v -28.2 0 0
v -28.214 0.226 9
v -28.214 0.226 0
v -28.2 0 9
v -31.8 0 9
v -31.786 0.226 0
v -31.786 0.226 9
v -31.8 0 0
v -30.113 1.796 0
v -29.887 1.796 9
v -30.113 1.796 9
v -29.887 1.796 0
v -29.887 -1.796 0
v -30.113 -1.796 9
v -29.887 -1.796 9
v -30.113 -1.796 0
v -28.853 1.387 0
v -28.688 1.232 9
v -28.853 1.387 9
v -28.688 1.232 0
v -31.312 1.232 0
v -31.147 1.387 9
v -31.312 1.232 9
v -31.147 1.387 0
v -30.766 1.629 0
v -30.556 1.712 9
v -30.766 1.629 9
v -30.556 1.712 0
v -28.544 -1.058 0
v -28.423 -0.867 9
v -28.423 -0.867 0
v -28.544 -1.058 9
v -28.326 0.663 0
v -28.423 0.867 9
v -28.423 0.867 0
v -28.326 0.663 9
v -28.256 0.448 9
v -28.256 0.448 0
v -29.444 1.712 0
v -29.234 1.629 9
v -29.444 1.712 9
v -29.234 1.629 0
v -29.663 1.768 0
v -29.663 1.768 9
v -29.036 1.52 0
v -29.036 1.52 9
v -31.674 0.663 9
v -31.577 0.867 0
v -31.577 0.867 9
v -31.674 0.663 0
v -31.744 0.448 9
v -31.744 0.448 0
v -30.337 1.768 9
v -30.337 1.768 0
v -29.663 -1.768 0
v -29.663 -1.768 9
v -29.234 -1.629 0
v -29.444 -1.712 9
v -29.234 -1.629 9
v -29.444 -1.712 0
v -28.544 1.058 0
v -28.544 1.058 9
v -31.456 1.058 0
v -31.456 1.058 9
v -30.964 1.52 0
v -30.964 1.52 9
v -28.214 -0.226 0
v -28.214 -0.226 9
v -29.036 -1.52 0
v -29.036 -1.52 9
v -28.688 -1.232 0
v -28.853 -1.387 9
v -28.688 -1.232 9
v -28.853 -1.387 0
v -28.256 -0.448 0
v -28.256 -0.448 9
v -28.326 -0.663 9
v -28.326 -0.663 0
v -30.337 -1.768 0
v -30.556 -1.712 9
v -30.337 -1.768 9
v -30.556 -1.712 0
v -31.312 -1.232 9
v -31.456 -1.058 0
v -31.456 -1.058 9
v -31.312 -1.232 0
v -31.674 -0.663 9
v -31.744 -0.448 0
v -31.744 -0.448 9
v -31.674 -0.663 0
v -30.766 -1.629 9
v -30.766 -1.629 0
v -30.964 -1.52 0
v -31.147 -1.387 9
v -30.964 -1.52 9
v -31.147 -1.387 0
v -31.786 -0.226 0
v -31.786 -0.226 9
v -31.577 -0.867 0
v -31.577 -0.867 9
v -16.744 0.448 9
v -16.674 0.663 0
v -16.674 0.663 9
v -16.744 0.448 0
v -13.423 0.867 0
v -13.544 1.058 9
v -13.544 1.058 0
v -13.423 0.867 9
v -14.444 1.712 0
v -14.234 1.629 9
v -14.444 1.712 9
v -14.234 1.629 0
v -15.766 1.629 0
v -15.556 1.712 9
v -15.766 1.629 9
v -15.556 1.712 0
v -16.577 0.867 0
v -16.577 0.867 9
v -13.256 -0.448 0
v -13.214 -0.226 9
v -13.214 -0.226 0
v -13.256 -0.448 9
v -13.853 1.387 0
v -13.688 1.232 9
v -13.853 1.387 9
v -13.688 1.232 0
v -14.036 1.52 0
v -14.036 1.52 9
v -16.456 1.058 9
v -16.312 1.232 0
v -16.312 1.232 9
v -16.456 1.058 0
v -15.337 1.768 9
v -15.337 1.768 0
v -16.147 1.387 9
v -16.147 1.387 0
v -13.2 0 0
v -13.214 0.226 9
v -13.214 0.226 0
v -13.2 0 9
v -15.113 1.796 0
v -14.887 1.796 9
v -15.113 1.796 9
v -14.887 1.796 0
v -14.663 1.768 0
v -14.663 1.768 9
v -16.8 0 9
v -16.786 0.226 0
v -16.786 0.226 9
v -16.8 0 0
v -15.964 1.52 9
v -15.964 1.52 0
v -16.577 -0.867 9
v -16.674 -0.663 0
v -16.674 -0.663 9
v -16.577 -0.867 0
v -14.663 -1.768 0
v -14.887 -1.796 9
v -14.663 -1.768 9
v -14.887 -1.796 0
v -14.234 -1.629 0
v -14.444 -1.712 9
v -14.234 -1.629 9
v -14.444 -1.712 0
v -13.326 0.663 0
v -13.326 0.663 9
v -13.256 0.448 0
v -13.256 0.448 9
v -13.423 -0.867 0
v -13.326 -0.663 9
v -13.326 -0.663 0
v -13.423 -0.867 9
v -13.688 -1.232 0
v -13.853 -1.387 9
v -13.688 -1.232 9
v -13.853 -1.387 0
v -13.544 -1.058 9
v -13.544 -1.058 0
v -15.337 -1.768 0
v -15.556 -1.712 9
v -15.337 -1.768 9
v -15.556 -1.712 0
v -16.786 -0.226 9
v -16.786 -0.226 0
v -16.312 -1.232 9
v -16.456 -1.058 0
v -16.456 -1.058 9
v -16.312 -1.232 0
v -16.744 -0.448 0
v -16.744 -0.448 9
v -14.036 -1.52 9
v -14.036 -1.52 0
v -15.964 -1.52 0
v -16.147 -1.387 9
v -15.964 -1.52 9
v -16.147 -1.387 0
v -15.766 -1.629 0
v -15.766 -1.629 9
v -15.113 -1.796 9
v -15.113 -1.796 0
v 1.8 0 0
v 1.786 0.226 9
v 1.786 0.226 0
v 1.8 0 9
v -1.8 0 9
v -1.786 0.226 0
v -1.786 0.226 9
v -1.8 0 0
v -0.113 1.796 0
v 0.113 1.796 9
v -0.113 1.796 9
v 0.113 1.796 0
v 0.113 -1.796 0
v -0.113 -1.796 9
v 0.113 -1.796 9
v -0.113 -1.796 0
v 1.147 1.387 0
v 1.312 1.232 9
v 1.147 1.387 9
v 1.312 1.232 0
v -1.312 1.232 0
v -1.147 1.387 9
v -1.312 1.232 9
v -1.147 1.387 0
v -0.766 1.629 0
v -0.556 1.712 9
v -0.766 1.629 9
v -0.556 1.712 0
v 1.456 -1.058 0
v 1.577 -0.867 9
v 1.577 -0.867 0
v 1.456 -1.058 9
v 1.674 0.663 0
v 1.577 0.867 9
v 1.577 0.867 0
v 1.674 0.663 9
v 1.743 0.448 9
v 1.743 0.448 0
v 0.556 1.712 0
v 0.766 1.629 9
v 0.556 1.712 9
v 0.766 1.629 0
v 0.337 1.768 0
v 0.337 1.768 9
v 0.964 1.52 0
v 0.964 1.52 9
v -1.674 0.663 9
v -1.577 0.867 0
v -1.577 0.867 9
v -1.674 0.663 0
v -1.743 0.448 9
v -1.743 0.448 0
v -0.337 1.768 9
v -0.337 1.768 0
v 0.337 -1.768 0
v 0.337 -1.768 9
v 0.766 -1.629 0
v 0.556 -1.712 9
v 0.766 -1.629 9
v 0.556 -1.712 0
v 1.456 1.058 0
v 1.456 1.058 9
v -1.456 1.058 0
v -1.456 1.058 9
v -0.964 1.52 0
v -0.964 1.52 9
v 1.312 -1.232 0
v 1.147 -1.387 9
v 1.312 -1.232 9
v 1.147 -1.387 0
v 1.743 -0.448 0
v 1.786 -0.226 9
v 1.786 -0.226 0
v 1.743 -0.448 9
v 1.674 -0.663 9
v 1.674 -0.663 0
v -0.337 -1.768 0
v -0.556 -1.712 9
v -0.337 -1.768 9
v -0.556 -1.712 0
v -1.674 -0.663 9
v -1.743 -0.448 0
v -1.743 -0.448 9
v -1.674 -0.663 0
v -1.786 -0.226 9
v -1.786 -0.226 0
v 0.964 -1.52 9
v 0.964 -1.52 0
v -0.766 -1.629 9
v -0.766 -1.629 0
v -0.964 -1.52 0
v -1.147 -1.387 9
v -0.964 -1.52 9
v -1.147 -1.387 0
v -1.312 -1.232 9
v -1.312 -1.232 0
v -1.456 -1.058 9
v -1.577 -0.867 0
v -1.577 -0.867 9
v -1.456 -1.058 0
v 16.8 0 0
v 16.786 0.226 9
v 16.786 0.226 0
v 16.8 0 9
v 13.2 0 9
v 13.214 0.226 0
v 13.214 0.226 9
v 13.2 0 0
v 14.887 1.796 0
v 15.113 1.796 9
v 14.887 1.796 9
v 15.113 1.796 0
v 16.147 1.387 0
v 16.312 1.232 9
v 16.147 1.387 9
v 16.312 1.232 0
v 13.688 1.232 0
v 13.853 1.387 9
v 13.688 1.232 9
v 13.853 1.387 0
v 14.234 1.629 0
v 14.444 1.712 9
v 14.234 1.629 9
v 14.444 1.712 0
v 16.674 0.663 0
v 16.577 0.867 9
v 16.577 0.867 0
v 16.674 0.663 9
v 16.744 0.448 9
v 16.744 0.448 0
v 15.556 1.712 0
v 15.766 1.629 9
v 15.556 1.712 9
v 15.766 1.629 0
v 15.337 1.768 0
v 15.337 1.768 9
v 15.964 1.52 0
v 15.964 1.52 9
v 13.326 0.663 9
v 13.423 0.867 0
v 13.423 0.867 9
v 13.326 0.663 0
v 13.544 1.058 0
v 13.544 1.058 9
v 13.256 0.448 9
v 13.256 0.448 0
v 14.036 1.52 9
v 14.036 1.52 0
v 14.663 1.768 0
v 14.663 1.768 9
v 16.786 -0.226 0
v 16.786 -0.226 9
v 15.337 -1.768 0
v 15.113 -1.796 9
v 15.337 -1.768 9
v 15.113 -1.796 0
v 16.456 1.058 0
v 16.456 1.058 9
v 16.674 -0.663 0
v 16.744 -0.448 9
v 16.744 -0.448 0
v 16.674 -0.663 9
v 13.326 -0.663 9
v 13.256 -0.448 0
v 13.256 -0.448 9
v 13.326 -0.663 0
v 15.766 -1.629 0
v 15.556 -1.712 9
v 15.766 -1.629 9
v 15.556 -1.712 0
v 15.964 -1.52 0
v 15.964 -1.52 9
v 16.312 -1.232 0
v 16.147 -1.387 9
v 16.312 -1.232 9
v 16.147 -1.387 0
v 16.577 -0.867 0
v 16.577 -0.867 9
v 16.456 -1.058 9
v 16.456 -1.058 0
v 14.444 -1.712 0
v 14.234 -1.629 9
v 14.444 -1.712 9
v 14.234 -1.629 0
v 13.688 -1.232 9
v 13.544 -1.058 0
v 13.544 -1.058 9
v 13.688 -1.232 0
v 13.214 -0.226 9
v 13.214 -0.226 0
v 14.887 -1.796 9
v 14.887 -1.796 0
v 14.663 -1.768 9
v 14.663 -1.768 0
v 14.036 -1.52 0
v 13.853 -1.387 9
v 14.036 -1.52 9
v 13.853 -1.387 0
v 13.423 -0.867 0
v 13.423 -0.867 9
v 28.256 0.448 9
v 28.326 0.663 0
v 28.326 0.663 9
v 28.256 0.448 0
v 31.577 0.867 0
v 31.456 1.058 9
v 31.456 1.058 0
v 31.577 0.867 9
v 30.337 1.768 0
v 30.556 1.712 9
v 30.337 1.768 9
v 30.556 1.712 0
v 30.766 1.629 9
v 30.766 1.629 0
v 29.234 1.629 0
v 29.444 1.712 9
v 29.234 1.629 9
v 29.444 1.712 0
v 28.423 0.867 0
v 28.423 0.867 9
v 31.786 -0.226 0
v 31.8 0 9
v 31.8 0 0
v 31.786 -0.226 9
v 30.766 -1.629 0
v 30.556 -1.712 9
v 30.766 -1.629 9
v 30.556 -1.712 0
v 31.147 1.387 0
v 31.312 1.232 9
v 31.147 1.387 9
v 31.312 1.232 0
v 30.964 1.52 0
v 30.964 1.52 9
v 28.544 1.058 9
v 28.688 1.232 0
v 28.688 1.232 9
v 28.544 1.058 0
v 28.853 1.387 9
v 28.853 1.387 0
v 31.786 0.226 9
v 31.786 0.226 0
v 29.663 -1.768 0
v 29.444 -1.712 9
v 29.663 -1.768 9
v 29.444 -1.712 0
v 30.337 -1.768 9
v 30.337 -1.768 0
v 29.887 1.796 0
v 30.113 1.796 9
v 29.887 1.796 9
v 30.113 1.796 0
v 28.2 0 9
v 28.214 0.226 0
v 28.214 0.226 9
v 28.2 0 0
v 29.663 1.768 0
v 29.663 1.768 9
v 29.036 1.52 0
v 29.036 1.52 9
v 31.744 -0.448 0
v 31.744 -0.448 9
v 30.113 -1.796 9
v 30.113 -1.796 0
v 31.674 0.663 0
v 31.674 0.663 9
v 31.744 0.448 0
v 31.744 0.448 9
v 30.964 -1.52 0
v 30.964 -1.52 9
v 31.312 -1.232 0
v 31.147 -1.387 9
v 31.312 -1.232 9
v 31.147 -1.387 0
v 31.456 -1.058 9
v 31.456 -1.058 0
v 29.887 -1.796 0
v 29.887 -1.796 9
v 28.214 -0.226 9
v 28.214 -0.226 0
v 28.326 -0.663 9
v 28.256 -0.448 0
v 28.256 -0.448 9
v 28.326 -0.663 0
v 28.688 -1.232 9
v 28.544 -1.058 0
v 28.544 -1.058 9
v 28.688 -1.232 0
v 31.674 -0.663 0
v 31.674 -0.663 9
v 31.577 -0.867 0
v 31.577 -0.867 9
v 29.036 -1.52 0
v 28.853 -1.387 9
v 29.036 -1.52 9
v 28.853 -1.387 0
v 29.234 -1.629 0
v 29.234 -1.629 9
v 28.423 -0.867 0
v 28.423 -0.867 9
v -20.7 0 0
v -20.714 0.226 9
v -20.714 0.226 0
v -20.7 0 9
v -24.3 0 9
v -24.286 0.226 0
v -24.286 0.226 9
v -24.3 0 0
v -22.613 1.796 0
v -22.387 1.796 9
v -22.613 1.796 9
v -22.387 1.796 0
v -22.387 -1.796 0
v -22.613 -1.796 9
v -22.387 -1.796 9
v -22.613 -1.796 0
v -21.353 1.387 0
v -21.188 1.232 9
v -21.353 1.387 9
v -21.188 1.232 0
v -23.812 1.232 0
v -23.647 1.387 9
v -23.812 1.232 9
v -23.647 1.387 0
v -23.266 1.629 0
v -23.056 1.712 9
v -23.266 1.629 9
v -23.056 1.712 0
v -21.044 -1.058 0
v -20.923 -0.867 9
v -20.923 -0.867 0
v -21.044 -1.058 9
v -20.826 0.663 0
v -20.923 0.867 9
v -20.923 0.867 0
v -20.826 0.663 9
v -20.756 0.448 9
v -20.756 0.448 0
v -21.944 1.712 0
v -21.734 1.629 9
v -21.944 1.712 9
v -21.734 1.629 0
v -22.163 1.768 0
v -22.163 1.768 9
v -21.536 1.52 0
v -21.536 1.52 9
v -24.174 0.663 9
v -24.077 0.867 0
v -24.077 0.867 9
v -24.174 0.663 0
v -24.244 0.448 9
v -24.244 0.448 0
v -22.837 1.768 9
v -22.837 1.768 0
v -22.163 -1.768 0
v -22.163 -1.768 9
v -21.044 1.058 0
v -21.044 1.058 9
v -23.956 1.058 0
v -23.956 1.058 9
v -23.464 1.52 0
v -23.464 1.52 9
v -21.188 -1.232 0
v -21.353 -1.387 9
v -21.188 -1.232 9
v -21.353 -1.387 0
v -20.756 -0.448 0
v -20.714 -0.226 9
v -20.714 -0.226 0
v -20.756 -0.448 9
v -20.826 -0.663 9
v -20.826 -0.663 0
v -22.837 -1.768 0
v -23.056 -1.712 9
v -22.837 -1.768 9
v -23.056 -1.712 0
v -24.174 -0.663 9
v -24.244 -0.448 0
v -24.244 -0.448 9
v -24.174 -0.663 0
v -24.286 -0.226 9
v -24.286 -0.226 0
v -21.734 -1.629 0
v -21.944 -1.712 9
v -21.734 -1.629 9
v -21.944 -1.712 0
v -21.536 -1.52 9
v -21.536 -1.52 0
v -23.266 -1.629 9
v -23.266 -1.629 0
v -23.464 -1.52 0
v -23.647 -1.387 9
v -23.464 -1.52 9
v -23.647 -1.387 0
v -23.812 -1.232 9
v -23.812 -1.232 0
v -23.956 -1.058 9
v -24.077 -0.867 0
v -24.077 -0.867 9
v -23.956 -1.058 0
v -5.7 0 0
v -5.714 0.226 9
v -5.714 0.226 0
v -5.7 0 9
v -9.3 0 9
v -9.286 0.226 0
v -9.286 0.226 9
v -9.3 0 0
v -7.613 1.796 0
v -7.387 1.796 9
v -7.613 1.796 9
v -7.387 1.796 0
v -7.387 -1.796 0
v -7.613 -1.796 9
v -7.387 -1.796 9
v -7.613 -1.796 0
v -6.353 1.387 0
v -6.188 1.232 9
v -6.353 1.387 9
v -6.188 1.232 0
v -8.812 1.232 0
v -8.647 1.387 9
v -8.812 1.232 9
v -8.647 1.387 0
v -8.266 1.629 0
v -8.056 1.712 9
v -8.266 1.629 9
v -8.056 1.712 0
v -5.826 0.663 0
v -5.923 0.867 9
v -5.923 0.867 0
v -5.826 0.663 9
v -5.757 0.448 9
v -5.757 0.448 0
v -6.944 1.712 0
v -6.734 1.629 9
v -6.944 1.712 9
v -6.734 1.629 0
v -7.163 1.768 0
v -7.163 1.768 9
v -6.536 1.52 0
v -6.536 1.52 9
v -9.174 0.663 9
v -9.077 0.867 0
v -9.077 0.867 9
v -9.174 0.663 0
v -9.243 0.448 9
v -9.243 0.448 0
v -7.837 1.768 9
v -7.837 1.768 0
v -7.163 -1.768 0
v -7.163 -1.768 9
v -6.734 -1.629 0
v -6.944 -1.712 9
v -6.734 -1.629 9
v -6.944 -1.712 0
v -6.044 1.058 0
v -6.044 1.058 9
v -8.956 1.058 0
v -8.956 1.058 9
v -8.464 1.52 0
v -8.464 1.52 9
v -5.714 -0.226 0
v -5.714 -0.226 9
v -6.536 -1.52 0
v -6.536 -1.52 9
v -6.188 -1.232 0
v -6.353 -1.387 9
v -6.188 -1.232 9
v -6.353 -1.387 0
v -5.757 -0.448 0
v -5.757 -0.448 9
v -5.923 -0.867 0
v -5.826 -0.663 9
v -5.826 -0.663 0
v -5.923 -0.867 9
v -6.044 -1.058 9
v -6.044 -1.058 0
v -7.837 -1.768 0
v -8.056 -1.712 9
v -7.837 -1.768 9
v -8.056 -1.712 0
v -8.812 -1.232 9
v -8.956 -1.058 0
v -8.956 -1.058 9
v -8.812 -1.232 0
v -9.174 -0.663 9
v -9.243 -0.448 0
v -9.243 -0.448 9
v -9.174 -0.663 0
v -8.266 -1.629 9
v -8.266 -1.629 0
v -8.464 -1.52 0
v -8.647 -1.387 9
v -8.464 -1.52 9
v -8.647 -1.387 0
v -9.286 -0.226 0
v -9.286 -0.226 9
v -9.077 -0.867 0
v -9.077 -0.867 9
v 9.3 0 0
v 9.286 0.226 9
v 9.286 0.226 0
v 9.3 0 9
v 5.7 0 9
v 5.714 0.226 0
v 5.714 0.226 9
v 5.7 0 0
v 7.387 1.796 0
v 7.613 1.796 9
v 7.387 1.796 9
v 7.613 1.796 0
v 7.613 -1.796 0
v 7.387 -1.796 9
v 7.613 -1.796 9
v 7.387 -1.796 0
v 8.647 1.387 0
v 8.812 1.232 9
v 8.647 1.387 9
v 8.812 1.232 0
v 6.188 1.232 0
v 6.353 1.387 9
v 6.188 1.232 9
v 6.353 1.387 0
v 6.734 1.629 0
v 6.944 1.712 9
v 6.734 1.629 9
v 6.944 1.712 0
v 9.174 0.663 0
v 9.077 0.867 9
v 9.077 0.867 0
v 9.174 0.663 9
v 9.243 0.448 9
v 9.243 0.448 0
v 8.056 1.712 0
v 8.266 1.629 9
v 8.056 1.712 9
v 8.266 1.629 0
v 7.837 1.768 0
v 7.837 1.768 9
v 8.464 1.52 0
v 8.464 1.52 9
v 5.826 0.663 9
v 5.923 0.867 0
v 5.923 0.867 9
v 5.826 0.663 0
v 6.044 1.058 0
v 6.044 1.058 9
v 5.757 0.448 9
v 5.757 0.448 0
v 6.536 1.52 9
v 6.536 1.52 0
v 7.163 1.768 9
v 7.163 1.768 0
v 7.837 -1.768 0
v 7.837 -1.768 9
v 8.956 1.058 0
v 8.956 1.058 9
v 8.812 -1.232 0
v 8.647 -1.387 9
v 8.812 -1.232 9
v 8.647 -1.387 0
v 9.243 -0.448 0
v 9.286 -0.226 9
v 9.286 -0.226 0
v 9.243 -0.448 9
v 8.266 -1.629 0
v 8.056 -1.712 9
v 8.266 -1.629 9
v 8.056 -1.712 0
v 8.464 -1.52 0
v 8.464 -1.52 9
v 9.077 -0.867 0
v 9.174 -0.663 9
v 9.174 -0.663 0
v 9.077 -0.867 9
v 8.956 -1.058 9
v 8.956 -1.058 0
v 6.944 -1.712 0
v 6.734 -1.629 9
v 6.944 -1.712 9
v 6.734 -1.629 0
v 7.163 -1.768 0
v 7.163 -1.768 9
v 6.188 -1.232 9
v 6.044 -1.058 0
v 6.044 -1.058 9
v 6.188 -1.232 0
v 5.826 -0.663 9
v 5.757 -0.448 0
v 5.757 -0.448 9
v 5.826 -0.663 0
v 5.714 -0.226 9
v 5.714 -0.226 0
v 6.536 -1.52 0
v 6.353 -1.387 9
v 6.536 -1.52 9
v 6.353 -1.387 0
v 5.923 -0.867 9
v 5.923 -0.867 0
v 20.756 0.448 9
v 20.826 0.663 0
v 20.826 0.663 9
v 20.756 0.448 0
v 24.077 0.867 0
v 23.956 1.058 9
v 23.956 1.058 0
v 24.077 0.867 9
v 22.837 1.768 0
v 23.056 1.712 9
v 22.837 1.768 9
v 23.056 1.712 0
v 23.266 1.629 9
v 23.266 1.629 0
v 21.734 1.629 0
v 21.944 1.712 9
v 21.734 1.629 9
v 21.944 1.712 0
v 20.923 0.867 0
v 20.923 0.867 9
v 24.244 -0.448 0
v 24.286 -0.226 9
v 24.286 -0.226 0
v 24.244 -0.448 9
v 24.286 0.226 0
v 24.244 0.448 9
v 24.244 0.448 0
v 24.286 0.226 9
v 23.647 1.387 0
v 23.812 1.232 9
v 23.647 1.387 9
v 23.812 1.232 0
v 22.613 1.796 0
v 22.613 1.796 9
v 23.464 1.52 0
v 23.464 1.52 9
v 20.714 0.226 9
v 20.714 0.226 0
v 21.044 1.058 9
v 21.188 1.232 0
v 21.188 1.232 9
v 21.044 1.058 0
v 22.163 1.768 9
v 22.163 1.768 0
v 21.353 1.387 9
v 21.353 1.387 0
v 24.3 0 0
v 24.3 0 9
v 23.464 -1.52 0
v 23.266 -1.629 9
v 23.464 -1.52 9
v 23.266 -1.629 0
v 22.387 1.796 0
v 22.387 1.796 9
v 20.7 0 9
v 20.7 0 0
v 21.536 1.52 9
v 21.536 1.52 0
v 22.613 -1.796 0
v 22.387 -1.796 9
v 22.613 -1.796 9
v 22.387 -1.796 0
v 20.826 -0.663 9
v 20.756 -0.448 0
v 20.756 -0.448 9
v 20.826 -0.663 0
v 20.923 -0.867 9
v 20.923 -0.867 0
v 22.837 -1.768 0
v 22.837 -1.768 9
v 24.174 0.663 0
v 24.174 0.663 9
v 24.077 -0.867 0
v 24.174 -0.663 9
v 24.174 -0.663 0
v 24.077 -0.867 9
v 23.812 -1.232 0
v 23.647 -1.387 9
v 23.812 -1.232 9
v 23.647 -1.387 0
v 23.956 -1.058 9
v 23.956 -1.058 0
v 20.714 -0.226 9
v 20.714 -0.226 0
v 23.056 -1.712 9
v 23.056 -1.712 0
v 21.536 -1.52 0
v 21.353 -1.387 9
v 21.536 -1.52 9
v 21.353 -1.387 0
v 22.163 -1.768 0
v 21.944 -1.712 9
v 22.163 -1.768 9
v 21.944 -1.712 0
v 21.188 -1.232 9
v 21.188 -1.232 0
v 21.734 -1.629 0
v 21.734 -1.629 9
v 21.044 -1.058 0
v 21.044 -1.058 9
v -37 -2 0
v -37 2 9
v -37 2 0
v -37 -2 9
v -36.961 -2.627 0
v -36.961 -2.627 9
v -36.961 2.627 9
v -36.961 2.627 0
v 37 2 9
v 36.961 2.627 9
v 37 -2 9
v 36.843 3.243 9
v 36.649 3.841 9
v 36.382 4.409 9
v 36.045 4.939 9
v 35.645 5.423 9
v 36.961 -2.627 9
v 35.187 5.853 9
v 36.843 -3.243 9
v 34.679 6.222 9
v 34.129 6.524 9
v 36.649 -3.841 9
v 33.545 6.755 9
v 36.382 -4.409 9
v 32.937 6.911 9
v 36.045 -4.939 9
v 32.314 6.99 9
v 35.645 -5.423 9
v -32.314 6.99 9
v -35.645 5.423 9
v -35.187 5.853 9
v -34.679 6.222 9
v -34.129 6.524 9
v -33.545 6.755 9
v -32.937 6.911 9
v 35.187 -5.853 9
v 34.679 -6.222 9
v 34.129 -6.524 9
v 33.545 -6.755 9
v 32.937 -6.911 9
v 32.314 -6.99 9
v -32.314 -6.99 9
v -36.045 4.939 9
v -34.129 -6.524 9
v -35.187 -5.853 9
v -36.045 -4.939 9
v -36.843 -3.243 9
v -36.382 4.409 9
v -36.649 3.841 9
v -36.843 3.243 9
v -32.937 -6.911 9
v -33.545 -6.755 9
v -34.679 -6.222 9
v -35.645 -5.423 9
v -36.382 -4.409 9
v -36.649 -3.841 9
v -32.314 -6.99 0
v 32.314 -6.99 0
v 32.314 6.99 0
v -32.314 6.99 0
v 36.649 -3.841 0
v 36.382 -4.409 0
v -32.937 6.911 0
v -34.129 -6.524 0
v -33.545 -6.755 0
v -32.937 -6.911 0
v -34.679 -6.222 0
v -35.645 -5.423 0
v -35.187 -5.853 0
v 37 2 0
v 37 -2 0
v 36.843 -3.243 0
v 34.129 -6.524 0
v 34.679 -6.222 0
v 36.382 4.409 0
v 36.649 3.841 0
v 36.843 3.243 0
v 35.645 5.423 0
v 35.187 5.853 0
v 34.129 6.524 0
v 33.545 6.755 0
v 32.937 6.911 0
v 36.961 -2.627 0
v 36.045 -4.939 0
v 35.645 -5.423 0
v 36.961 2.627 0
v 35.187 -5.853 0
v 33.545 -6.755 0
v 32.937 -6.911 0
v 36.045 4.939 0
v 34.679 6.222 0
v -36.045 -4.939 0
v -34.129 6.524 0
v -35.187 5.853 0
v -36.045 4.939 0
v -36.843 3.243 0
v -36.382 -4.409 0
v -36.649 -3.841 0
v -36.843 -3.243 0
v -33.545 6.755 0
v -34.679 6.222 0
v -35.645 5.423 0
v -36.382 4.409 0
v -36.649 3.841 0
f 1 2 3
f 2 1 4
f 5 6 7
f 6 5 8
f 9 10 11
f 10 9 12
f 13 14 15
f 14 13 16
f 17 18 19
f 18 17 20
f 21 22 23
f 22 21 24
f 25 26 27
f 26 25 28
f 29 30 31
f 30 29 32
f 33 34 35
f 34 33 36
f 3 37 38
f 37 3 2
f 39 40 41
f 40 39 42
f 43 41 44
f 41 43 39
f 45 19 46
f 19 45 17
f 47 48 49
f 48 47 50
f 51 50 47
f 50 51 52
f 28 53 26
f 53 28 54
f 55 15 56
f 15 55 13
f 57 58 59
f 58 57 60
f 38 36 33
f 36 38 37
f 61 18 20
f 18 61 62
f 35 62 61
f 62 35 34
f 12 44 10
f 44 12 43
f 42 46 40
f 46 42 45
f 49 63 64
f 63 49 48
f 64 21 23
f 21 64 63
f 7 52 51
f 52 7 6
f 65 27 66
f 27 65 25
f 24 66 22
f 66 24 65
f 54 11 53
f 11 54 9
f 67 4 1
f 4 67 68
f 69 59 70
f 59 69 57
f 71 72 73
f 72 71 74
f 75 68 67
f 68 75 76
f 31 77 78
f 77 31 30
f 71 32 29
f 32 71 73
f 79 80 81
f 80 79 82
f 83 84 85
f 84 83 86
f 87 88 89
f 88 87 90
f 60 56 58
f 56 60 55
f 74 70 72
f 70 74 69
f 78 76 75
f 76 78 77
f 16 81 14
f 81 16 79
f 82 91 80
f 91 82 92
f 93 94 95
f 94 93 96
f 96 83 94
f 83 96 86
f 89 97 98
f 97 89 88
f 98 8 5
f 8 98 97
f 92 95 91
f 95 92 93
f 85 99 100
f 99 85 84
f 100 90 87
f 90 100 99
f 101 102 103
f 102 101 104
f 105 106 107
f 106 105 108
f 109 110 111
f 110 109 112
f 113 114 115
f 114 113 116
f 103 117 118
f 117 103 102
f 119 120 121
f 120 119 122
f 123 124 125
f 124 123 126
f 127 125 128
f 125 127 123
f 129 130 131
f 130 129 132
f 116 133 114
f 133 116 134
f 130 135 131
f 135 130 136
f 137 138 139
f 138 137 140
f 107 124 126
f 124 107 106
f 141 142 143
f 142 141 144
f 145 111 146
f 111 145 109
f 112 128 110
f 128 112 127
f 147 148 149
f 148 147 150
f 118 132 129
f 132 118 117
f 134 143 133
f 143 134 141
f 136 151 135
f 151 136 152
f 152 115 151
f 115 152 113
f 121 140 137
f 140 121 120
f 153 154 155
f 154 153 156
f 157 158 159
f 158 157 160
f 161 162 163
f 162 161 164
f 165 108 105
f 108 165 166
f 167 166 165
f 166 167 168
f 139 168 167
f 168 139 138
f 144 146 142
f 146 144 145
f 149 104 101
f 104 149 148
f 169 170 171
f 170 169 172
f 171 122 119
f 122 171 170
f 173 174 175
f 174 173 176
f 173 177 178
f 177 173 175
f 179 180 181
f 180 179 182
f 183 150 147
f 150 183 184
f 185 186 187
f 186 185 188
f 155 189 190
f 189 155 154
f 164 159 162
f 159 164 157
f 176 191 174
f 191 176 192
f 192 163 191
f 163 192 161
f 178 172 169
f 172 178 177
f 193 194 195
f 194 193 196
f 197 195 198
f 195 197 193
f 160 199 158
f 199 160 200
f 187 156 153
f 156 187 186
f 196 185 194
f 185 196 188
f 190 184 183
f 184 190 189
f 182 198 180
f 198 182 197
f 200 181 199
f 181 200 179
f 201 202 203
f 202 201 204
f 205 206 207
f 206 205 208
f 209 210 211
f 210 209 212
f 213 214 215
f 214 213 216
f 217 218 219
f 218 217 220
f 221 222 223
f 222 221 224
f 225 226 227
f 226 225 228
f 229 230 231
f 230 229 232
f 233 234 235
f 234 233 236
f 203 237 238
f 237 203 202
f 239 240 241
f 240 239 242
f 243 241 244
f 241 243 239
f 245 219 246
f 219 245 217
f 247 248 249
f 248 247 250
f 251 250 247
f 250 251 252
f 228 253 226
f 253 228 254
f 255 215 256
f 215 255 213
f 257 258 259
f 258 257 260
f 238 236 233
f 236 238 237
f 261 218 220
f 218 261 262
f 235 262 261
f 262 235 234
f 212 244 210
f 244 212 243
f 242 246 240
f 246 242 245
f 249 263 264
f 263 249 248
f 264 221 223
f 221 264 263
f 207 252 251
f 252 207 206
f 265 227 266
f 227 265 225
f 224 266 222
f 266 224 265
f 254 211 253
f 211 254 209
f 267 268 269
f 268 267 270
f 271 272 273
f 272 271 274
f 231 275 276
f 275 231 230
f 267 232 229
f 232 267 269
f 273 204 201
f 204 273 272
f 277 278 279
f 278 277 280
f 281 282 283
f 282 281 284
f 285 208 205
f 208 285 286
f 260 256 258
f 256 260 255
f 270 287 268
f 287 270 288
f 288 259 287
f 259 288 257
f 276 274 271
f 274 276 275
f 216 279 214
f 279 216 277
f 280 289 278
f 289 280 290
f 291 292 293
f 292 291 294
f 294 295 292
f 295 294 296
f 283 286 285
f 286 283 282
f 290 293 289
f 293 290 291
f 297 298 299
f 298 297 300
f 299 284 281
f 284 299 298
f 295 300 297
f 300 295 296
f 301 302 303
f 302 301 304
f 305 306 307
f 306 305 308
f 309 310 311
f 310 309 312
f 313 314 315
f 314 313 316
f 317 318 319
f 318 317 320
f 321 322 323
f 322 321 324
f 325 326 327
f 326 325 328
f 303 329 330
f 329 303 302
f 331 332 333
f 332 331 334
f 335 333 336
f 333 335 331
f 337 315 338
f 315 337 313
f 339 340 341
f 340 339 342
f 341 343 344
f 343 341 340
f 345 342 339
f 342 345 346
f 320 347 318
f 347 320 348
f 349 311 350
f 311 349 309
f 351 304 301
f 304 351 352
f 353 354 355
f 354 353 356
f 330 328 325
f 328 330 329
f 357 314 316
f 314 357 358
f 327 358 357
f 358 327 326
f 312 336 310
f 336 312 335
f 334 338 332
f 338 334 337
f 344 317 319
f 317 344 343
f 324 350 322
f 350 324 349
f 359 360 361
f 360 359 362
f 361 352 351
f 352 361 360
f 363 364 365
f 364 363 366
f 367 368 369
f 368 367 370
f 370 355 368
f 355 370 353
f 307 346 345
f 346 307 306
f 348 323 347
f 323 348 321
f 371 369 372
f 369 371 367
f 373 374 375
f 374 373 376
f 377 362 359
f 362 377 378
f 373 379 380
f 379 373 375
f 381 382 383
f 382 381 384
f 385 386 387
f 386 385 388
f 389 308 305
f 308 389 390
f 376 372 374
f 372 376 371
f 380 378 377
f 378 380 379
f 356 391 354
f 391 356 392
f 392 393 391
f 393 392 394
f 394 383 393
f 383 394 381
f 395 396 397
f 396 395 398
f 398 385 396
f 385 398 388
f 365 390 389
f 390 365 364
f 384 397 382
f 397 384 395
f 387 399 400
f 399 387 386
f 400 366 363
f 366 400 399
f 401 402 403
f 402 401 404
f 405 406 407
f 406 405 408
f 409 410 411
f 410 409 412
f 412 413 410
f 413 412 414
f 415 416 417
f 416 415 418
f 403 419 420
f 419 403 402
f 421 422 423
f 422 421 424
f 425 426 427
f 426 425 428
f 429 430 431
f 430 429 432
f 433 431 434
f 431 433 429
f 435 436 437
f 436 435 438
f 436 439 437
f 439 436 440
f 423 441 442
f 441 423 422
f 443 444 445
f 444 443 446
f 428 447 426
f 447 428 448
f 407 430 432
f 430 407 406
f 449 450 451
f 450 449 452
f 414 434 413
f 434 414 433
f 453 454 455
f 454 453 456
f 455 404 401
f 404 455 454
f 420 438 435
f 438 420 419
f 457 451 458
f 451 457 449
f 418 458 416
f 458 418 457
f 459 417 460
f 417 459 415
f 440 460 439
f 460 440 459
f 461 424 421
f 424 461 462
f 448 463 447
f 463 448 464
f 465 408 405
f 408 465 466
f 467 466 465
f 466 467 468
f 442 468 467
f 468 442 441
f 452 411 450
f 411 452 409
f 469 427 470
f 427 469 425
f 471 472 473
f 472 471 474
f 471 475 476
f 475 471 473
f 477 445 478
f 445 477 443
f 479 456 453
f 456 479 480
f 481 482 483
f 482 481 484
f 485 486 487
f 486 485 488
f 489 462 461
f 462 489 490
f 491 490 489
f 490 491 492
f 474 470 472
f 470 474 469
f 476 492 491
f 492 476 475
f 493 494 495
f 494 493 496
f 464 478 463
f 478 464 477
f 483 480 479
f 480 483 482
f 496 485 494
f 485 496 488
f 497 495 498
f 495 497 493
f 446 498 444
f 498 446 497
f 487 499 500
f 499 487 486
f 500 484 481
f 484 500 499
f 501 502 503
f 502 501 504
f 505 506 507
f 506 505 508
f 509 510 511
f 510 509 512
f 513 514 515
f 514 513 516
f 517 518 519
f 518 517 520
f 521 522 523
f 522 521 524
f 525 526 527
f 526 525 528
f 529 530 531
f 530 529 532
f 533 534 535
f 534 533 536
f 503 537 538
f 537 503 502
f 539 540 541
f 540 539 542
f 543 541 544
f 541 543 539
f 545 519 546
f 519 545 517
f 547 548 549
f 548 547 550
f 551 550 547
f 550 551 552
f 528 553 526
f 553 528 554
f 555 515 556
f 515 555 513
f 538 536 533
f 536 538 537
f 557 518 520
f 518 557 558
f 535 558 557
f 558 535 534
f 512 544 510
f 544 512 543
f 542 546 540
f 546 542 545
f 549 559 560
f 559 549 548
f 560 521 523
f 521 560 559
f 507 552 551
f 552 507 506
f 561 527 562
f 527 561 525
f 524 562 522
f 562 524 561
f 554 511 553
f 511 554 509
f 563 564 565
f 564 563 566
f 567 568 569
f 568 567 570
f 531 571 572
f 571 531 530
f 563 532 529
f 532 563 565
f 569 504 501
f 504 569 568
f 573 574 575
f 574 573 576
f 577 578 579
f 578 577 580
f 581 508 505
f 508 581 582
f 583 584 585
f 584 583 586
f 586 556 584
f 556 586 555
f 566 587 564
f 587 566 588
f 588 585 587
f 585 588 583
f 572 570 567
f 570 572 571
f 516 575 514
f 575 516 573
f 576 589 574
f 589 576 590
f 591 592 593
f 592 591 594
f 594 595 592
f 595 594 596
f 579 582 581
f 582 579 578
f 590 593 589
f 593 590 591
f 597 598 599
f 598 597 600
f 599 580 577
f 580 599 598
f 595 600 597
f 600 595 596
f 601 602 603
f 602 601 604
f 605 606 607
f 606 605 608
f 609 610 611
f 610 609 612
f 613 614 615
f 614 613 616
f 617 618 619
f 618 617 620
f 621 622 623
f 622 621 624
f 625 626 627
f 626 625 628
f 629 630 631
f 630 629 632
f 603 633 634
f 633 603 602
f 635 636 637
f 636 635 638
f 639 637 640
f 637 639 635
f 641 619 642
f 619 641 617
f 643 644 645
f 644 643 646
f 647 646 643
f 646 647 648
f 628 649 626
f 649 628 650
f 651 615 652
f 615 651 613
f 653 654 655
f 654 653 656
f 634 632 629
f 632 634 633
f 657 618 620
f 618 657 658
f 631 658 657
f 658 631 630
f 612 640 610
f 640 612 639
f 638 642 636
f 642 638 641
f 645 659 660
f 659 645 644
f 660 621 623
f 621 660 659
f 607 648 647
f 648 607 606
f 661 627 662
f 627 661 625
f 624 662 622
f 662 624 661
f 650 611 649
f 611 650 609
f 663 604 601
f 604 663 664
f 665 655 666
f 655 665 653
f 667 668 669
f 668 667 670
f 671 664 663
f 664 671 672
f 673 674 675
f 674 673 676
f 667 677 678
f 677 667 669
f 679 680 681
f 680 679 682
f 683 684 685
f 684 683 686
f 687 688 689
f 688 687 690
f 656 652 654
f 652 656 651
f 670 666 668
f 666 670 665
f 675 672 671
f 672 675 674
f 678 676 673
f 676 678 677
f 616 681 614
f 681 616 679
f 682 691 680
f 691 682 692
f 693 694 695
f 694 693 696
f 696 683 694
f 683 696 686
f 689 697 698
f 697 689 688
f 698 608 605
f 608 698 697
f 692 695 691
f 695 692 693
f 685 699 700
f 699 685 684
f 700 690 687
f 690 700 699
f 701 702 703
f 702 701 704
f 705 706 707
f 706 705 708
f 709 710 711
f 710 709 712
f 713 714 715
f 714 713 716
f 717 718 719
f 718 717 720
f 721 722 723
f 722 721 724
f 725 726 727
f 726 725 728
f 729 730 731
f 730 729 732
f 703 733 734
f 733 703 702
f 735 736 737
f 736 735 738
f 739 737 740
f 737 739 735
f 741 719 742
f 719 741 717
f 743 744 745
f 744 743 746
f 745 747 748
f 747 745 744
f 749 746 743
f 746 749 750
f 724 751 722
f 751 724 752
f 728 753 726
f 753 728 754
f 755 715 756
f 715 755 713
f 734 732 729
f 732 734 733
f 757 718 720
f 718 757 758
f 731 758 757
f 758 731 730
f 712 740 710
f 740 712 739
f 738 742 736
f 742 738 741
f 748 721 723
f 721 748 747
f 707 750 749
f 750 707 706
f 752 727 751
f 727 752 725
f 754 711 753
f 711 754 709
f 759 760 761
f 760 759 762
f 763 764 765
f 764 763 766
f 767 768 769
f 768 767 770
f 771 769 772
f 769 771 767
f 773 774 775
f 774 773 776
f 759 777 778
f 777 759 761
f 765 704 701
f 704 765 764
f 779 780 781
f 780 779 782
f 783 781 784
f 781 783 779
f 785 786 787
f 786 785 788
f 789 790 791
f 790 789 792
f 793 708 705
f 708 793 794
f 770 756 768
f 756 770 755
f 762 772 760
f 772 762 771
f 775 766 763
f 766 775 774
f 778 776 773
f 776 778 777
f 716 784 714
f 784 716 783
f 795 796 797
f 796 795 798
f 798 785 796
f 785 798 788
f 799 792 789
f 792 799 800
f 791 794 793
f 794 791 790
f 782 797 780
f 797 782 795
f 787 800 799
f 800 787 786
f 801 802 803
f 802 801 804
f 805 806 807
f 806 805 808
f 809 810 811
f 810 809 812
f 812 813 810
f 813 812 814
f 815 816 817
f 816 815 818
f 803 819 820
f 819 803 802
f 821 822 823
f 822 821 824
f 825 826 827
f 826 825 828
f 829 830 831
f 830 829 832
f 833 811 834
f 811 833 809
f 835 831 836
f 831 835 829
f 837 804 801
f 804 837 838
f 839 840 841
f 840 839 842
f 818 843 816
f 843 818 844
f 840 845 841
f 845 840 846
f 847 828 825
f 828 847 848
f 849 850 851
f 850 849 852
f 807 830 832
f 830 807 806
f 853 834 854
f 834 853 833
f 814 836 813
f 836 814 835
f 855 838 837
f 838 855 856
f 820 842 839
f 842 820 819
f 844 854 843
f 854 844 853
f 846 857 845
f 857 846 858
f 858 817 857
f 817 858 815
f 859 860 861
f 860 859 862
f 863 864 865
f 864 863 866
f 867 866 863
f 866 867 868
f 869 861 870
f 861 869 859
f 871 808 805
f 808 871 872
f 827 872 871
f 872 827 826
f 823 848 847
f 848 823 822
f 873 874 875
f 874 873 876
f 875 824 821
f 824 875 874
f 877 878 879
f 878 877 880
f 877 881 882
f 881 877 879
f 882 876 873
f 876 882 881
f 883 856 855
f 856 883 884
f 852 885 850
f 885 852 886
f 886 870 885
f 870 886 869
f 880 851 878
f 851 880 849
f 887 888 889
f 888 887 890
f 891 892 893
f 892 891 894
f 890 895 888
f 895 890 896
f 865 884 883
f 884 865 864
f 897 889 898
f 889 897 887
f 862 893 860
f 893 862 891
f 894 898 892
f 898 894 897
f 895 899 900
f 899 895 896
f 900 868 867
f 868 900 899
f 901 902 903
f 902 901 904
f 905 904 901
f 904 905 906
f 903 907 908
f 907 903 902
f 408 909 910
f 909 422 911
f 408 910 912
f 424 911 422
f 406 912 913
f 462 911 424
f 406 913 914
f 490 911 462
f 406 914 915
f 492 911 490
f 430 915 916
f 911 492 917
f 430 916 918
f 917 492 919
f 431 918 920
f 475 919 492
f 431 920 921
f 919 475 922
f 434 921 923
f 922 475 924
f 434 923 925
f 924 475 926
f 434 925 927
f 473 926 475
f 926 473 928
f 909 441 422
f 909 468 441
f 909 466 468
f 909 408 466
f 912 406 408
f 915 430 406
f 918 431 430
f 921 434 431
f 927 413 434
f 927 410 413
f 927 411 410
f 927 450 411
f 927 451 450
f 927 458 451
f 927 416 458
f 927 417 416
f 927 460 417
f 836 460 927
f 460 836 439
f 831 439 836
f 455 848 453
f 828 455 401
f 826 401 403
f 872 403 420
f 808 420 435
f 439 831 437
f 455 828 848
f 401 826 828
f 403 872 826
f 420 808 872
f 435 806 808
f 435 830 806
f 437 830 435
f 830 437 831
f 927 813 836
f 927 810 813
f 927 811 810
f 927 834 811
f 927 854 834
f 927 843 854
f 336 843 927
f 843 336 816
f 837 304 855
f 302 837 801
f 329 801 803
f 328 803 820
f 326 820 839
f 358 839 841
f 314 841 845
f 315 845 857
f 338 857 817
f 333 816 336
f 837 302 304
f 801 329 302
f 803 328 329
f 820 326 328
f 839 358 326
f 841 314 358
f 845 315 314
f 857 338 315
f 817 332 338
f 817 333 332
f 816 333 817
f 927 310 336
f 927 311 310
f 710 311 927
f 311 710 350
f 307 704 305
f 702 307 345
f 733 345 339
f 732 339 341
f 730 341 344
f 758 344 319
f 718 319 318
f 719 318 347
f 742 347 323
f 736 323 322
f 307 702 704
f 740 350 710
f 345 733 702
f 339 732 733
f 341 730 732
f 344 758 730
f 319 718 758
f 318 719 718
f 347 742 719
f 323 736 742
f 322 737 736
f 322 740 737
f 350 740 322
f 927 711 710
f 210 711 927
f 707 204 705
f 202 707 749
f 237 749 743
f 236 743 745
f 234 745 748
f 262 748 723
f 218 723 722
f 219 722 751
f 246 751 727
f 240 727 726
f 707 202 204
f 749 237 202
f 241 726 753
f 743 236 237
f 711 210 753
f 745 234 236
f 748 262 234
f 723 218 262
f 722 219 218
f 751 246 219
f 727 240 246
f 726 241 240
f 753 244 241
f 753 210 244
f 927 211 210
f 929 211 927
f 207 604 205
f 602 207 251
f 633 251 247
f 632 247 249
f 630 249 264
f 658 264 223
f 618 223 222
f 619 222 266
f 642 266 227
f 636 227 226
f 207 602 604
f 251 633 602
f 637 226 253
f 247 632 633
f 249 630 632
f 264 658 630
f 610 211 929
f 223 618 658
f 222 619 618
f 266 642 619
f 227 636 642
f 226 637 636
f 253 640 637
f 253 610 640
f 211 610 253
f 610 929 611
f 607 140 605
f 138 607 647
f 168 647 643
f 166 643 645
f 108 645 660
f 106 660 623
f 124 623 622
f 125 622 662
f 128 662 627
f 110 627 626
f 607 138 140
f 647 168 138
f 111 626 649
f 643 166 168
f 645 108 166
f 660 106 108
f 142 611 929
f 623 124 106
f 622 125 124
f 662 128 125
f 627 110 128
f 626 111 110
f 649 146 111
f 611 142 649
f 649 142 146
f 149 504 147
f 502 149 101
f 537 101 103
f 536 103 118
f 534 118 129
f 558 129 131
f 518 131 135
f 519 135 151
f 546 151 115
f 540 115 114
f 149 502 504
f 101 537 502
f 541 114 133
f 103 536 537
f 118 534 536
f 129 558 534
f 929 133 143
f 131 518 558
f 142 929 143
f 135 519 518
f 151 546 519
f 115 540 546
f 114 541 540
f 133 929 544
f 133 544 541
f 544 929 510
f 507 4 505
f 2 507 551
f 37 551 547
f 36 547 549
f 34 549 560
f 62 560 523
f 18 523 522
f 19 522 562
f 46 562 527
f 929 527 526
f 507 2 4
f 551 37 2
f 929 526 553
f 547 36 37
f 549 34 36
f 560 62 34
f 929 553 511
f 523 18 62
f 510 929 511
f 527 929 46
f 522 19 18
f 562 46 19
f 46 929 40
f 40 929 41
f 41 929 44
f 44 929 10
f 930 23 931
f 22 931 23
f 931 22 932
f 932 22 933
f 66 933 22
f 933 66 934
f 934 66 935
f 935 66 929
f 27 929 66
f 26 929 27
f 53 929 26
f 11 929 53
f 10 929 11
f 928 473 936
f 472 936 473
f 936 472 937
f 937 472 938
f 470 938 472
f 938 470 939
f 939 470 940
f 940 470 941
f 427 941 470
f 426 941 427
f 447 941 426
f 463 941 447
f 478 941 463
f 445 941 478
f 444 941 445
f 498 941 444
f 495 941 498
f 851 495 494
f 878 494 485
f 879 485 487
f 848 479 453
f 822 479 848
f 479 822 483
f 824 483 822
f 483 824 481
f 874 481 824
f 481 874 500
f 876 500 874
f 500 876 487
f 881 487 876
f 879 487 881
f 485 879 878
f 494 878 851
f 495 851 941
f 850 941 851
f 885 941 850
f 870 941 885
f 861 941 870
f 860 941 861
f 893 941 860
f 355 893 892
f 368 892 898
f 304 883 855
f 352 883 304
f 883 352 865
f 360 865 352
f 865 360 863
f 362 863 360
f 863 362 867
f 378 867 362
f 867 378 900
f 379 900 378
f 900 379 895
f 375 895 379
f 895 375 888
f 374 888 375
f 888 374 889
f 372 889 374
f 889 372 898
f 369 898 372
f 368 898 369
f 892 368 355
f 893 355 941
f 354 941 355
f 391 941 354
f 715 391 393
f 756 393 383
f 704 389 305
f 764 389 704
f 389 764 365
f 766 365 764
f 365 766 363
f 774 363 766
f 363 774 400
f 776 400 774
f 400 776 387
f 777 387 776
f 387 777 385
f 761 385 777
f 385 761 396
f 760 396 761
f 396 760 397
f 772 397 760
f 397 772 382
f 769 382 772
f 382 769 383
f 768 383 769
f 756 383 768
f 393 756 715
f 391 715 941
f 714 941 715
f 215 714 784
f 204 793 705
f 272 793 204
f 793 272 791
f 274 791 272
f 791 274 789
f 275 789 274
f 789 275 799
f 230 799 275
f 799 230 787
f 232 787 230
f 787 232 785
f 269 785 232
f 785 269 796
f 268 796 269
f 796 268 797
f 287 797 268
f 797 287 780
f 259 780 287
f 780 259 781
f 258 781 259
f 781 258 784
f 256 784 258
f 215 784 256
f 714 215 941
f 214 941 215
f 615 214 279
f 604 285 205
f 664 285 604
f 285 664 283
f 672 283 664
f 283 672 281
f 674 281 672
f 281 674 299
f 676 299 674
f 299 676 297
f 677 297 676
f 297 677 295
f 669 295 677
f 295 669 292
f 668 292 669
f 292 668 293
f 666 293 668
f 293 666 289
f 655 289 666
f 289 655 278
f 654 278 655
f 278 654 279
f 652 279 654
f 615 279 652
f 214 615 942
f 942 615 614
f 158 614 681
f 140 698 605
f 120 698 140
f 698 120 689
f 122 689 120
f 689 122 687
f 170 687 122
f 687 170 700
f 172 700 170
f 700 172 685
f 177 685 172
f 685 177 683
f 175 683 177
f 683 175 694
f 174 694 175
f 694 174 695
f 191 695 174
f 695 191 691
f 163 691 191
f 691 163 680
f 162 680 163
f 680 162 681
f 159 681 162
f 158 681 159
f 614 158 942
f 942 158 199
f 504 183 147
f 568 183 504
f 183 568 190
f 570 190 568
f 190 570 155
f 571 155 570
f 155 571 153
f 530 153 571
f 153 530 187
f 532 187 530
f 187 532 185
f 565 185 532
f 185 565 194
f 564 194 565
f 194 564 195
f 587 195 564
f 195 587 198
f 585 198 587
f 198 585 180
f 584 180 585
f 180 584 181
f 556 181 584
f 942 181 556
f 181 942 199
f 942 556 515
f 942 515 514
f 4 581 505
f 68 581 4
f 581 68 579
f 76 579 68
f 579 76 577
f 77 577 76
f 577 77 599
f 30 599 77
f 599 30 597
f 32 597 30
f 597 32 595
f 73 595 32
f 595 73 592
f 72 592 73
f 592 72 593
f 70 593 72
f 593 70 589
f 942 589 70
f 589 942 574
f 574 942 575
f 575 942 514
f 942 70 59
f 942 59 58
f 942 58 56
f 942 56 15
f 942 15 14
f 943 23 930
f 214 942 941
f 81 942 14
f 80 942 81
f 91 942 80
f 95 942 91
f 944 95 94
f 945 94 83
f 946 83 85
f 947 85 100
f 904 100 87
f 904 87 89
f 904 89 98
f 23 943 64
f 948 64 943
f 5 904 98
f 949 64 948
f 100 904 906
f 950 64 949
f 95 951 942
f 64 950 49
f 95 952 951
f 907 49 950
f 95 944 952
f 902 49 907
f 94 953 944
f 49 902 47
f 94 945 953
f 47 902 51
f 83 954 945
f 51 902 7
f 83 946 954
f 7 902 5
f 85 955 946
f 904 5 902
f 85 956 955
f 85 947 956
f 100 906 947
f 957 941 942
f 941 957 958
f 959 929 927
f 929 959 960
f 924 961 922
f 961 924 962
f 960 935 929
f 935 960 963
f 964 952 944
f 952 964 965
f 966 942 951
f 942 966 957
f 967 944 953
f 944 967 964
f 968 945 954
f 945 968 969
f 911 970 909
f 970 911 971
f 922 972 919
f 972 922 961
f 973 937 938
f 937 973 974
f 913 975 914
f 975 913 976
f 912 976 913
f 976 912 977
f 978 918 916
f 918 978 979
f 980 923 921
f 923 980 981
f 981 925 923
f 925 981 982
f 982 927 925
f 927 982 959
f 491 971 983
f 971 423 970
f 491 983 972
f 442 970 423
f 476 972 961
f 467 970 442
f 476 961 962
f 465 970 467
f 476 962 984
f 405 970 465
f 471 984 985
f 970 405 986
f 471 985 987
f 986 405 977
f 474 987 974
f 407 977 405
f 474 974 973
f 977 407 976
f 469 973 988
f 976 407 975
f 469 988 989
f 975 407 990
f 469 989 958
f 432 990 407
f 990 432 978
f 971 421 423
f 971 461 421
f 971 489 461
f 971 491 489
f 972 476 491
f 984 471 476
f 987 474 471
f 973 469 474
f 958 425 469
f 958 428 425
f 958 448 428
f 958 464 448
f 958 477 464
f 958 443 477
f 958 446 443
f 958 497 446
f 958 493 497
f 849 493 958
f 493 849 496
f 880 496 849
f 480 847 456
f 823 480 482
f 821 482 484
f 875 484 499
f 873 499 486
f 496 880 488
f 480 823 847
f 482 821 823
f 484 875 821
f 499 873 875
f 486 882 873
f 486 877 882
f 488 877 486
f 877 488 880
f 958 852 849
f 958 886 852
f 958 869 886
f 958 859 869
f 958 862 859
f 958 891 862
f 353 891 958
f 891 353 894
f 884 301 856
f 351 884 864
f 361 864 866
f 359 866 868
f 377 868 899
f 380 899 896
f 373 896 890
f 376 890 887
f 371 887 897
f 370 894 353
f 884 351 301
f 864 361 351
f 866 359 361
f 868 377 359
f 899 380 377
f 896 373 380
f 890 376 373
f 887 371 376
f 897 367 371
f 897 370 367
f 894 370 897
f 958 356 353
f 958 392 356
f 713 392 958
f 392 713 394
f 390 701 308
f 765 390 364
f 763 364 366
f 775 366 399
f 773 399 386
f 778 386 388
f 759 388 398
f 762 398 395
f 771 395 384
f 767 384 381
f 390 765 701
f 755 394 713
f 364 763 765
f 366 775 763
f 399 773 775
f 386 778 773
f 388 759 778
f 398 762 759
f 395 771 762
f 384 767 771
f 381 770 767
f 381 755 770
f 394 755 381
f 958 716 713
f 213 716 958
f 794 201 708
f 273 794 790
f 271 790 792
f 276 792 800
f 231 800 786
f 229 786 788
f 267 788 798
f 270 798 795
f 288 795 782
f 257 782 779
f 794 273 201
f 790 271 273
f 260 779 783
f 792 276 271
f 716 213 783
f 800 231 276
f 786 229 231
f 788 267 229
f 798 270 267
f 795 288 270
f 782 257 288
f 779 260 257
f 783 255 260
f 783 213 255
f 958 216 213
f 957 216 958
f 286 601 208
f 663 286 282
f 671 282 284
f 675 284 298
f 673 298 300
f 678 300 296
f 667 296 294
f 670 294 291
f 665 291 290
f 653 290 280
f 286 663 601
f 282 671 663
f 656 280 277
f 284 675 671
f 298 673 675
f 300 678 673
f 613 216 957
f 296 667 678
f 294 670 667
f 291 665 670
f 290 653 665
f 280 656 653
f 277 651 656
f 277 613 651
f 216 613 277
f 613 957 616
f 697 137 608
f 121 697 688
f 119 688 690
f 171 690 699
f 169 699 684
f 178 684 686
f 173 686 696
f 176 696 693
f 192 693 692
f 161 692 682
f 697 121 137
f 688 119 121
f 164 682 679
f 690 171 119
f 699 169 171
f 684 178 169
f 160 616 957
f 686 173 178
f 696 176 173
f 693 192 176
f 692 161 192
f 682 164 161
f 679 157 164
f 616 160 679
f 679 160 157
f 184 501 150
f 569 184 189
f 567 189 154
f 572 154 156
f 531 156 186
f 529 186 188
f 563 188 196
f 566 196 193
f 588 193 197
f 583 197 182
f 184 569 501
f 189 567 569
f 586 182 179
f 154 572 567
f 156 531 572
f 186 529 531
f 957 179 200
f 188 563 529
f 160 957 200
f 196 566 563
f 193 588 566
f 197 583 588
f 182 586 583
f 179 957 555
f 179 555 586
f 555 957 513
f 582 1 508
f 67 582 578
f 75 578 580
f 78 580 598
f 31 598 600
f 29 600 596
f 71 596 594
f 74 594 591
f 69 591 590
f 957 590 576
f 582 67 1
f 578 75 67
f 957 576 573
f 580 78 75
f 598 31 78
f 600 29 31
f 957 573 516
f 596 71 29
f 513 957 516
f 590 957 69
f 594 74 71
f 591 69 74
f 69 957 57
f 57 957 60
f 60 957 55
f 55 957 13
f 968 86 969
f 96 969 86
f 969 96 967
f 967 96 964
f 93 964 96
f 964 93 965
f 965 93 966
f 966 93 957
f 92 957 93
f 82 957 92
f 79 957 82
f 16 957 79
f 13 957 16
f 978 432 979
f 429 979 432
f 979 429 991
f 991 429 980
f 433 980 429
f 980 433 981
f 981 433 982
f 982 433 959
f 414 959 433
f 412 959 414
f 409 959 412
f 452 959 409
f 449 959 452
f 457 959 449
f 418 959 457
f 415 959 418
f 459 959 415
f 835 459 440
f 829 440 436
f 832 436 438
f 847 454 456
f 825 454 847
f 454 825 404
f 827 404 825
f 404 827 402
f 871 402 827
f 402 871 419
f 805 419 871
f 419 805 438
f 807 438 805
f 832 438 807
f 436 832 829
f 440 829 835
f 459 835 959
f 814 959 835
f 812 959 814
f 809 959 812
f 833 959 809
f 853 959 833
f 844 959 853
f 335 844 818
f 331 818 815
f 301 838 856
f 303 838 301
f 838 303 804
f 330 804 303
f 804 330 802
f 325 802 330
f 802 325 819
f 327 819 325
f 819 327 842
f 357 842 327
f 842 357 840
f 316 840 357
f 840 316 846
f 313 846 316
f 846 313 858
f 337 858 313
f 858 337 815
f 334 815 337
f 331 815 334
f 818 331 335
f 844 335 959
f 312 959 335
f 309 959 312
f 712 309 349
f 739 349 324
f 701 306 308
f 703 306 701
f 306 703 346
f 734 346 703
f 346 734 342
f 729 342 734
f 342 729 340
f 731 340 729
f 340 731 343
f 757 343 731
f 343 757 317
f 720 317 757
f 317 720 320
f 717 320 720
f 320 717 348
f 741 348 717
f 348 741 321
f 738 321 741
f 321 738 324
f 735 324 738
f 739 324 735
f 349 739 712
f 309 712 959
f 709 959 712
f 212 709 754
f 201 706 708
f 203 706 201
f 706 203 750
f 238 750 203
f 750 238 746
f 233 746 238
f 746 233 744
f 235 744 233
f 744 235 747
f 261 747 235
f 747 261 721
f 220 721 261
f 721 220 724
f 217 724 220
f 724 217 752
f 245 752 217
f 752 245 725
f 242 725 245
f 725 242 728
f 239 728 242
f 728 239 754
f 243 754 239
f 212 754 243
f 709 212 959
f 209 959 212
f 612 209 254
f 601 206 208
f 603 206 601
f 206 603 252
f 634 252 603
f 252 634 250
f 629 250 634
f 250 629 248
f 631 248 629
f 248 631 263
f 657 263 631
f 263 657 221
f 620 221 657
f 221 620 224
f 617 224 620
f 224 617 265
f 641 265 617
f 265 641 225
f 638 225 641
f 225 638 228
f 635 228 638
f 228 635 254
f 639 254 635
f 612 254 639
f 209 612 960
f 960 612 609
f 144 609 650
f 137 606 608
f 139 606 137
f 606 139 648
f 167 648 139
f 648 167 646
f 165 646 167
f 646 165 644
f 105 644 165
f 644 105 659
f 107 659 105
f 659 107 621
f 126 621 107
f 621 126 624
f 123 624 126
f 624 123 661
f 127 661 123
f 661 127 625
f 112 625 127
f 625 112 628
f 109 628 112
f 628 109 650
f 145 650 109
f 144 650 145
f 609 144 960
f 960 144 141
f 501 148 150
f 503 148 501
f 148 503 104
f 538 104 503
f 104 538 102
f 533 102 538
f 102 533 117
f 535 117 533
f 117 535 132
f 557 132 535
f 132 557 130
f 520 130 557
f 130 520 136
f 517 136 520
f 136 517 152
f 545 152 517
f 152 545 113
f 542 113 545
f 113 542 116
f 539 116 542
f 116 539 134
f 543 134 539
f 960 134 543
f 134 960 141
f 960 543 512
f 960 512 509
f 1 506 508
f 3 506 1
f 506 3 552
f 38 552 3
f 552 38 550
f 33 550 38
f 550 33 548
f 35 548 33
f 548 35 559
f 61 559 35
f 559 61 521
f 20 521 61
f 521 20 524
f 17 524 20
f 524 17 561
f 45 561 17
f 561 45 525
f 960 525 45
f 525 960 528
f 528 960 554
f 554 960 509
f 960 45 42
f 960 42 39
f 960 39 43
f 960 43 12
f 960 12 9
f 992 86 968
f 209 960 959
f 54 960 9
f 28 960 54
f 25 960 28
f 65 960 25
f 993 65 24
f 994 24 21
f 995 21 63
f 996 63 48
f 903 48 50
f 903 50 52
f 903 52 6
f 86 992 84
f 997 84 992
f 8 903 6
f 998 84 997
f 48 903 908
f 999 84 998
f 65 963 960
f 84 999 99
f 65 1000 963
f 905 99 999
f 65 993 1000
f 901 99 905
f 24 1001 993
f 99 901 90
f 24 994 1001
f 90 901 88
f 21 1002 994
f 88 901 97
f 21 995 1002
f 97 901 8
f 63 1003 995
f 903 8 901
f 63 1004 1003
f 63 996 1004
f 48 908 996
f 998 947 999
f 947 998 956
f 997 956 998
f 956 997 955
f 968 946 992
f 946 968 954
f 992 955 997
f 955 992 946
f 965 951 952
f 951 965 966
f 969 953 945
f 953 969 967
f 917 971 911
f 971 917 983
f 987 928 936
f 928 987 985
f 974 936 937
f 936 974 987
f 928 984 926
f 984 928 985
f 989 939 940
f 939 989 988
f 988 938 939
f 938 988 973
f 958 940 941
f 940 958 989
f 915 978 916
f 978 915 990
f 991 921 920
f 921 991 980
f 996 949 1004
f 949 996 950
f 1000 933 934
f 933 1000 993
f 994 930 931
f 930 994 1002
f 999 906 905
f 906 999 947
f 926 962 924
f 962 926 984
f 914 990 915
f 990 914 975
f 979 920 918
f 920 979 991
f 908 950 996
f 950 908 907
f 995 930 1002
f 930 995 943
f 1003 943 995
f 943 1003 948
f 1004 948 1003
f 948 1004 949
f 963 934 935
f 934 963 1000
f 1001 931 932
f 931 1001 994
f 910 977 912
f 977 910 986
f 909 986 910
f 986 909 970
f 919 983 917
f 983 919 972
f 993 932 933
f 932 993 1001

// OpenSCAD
$fn = 50;


difference() {
	union() {
		hull() {
			translate(v = [-32.0000000000, 2.0000000000, 0]) {
				cylinder(h = 9, r = 5);
			}
			translate(v = [32.0000000000, 2.0000000000, 0]) {
				cylinder(h = 9, r = 5);
			}
			translate(v = [-32.0000000000, -2.0000000000, 0]) {
				cylinder(h = 9, r = 5);
			}
			translate(v = [32.0000000000, -2.0000000000, 0]) {
				cylinder(h = 9, r = 5);
			}
		}
	}
	union() {
		translate(v = [-30.0000000000, 0.0000000000, 0]) {
			translate(v = [0, 0, -100]) {
				cylinder(h = 200, r = 1.8000000000);
			}
		}
		translate(v = [-15.0000000000, 0.0000000000, 0]) {
			translate(v = [0, 0, -100]) {
				cylinder(h = 200, r = 1.8000000000);
			}
		}
		translate(v = [0, 0, -100]) {
			cylinder(h = 200, r = 1.8000000000);
		}
		translate(v = [15.0000000000, 0.0000000000, 0]) {
			translate(v = [0, 0, -100]) {
				cylinder(h = 200, r = 1.8000000000);
			}
		}
		translate(v = [30.0000000000, 0.0000000000, 0]) {
			translate(v = [0, 0, -100]) {
				cylinder(h = 200, r = 1.8000000000);
			}
		}
		translate(v = [-30.0000000000, 0.0000000000, 0]) {
			translate(v = [0, 0, -100]) {
				cylinder(h = 200, r = 1.8000000000);
			}
		}
		translate(v = [-22.5000000000, 0.0000000000, 0]) {
			translate(v = [0, 0, -100]) {
				cylinder(h = 200, r = 1.8000000000);
			}
		}
		translate(v = [-15.0000000000, 0.0000000000, 0]) {
			translate(v = [0, 0, -100]) {
				cylinder(h = 200, r = 1.8000000000);
			}
		}
		translate(v = [-7.5000000000, 0.0000000000, 0]) {
			translate(v = [0, 0, -100]) {
				cylinder(h = 200, r = 1.8000000000);
			}
		}
		translate(v = [0, 0, -100]) {
			cylinder(h = 200, r = 1.8000000000);
		}
		translate(v = [7.5000000000, 0.0000000000, 0]) {
			translate(v = [0, 0, -100]) {
				cylinder(h = 200, r = 1.8000000000);
			}
		}
		translate(v = [15.0000000000, 0.0000000000, 0]) {
			translate(v = [0, 0, -100]) {
				cylinder(h = 200, r = 1.8000000000);
			}
		}
		translate(v = [22.5000000000, 0.0000000000, 0]) {
			translate(v = [0, 0, -100]) {
				cylinder(h = 200, r = 1.8000000000);
			}
		}
		translate(v = [30.0000000000, 0.0000000000, 0]) {
			translate(v = [0, 0, -100]) {
				cylinder(h = 200, r = 1.8000000000);
			}
		}
	}
}
